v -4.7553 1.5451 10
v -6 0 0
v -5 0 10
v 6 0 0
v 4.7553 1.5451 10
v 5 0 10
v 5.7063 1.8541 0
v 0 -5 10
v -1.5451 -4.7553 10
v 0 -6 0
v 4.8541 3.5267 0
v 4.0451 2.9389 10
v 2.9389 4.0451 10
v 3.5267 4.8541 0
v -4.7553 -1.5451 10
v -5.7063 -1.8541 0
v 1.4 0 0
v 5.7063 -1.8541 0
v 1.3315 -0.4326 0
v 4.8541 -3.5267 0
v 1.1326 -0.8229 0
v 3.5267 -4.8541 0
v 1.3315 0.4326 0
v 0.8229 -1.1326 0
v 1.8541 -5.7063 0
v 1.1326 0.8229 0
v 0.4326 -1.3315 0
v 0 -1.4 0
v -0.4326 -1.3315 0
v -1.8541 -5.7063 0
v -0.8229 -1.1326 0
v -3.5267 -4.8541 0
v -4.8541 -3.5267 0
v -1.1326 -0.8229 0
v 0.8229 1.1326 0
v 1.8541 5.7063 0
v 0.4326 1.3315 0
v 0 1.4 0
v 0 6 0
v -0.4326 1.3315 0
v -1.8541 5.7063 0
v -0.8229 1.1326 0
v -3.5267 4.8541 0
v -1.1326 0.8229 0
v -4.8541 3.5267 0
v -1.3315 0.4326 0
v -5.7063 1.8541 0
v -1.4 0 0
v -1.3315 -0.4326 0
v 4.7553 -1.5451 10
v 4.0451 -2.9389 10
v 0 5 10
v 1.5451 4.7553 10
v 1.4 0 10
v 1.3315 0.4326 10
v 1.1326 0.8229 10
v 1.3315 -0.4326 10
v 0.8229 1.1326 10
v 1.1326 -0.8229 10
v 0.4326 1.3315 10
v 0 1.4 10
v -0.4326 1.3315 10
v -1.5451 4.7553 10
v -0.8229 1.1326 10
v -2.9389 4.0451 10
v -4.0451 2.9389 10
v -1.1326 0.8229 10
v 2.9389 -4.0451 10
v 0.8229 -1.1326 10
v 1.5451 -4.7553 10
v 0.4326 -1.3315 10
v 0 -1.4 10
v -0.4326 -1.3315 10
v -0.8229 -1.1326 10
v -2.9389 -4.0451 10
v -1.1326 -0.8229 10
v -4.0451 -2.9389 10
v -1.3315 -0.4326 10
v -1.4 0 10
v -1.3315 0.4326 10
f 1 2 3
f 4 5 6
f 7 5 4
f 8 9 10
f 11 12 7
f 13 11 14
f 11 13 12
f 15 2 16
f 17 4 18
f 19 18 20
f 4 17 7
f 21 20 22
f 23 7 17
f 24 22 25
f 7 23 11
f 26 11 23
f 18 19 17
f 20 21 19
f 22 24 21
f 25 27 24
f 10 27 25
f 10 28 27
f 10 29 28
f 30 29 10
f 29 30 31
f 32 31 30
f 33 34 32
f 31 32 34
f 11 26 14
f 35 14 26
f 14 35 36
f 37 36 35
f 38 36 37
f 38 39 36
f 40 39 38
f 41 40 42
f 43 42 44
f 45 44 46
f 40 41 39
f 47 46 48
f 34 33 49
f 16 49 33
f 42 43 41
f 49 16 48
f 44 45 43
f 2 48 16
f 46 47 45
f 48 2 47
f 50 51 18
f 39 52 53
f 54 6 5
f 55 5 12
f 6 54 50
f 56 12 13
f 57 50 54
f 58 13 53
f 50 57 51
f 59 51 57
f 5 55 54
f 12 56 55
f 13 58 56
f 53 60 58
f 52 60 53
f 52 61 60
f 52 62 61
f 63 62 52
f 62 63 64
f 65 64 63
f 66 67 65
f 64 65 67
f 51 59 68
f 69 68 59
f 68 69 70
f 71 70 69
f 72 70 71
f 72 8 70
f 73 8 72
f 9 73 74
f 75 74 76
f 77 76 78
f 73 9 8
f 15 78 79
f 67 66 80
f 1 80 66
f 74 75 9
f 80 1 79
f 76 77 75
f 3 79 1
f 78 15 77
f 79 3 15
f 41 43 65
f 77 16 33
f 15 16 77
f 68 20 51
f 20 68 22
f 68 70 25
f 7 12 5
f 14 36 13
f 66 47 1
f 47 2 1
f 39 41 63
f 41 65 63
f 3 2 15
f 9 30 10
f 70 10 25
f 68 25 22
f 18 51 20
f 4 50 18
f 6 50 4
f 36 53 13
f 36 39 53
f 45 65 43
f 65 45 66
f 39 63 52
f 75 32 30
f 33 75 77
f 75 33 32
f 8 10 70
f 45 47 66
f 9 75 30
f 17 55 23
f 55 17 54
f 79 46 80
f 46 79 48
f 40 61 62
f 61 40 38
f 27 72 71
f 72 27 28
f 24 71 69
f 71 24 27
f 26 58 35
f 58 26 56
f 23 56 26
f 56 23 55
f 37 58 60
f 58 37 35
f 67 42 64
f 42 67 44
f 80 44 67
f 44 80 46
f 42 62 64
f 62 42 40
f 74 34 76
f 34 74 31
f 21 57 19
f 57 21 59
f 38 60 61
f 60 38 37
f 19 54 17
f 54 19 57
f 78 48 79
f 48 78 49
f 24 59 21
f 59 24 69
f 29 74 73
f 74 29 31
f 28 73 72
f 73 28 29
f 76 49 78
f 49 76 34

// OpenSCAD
diameter_outer_min = 10;
diameter_outer_max = 12;
height = 10;
diameter_inner_min = 2.8;
diameter_inner_max = 2.8;

$fn = 20;

difference() {
    cylinder(d1 = diameter_outer_max, d2 = diameter_outer_min, h = height);
    cylinder(d = diameter_inner_max, d2 = diameter_inner_min, h = height);
}
